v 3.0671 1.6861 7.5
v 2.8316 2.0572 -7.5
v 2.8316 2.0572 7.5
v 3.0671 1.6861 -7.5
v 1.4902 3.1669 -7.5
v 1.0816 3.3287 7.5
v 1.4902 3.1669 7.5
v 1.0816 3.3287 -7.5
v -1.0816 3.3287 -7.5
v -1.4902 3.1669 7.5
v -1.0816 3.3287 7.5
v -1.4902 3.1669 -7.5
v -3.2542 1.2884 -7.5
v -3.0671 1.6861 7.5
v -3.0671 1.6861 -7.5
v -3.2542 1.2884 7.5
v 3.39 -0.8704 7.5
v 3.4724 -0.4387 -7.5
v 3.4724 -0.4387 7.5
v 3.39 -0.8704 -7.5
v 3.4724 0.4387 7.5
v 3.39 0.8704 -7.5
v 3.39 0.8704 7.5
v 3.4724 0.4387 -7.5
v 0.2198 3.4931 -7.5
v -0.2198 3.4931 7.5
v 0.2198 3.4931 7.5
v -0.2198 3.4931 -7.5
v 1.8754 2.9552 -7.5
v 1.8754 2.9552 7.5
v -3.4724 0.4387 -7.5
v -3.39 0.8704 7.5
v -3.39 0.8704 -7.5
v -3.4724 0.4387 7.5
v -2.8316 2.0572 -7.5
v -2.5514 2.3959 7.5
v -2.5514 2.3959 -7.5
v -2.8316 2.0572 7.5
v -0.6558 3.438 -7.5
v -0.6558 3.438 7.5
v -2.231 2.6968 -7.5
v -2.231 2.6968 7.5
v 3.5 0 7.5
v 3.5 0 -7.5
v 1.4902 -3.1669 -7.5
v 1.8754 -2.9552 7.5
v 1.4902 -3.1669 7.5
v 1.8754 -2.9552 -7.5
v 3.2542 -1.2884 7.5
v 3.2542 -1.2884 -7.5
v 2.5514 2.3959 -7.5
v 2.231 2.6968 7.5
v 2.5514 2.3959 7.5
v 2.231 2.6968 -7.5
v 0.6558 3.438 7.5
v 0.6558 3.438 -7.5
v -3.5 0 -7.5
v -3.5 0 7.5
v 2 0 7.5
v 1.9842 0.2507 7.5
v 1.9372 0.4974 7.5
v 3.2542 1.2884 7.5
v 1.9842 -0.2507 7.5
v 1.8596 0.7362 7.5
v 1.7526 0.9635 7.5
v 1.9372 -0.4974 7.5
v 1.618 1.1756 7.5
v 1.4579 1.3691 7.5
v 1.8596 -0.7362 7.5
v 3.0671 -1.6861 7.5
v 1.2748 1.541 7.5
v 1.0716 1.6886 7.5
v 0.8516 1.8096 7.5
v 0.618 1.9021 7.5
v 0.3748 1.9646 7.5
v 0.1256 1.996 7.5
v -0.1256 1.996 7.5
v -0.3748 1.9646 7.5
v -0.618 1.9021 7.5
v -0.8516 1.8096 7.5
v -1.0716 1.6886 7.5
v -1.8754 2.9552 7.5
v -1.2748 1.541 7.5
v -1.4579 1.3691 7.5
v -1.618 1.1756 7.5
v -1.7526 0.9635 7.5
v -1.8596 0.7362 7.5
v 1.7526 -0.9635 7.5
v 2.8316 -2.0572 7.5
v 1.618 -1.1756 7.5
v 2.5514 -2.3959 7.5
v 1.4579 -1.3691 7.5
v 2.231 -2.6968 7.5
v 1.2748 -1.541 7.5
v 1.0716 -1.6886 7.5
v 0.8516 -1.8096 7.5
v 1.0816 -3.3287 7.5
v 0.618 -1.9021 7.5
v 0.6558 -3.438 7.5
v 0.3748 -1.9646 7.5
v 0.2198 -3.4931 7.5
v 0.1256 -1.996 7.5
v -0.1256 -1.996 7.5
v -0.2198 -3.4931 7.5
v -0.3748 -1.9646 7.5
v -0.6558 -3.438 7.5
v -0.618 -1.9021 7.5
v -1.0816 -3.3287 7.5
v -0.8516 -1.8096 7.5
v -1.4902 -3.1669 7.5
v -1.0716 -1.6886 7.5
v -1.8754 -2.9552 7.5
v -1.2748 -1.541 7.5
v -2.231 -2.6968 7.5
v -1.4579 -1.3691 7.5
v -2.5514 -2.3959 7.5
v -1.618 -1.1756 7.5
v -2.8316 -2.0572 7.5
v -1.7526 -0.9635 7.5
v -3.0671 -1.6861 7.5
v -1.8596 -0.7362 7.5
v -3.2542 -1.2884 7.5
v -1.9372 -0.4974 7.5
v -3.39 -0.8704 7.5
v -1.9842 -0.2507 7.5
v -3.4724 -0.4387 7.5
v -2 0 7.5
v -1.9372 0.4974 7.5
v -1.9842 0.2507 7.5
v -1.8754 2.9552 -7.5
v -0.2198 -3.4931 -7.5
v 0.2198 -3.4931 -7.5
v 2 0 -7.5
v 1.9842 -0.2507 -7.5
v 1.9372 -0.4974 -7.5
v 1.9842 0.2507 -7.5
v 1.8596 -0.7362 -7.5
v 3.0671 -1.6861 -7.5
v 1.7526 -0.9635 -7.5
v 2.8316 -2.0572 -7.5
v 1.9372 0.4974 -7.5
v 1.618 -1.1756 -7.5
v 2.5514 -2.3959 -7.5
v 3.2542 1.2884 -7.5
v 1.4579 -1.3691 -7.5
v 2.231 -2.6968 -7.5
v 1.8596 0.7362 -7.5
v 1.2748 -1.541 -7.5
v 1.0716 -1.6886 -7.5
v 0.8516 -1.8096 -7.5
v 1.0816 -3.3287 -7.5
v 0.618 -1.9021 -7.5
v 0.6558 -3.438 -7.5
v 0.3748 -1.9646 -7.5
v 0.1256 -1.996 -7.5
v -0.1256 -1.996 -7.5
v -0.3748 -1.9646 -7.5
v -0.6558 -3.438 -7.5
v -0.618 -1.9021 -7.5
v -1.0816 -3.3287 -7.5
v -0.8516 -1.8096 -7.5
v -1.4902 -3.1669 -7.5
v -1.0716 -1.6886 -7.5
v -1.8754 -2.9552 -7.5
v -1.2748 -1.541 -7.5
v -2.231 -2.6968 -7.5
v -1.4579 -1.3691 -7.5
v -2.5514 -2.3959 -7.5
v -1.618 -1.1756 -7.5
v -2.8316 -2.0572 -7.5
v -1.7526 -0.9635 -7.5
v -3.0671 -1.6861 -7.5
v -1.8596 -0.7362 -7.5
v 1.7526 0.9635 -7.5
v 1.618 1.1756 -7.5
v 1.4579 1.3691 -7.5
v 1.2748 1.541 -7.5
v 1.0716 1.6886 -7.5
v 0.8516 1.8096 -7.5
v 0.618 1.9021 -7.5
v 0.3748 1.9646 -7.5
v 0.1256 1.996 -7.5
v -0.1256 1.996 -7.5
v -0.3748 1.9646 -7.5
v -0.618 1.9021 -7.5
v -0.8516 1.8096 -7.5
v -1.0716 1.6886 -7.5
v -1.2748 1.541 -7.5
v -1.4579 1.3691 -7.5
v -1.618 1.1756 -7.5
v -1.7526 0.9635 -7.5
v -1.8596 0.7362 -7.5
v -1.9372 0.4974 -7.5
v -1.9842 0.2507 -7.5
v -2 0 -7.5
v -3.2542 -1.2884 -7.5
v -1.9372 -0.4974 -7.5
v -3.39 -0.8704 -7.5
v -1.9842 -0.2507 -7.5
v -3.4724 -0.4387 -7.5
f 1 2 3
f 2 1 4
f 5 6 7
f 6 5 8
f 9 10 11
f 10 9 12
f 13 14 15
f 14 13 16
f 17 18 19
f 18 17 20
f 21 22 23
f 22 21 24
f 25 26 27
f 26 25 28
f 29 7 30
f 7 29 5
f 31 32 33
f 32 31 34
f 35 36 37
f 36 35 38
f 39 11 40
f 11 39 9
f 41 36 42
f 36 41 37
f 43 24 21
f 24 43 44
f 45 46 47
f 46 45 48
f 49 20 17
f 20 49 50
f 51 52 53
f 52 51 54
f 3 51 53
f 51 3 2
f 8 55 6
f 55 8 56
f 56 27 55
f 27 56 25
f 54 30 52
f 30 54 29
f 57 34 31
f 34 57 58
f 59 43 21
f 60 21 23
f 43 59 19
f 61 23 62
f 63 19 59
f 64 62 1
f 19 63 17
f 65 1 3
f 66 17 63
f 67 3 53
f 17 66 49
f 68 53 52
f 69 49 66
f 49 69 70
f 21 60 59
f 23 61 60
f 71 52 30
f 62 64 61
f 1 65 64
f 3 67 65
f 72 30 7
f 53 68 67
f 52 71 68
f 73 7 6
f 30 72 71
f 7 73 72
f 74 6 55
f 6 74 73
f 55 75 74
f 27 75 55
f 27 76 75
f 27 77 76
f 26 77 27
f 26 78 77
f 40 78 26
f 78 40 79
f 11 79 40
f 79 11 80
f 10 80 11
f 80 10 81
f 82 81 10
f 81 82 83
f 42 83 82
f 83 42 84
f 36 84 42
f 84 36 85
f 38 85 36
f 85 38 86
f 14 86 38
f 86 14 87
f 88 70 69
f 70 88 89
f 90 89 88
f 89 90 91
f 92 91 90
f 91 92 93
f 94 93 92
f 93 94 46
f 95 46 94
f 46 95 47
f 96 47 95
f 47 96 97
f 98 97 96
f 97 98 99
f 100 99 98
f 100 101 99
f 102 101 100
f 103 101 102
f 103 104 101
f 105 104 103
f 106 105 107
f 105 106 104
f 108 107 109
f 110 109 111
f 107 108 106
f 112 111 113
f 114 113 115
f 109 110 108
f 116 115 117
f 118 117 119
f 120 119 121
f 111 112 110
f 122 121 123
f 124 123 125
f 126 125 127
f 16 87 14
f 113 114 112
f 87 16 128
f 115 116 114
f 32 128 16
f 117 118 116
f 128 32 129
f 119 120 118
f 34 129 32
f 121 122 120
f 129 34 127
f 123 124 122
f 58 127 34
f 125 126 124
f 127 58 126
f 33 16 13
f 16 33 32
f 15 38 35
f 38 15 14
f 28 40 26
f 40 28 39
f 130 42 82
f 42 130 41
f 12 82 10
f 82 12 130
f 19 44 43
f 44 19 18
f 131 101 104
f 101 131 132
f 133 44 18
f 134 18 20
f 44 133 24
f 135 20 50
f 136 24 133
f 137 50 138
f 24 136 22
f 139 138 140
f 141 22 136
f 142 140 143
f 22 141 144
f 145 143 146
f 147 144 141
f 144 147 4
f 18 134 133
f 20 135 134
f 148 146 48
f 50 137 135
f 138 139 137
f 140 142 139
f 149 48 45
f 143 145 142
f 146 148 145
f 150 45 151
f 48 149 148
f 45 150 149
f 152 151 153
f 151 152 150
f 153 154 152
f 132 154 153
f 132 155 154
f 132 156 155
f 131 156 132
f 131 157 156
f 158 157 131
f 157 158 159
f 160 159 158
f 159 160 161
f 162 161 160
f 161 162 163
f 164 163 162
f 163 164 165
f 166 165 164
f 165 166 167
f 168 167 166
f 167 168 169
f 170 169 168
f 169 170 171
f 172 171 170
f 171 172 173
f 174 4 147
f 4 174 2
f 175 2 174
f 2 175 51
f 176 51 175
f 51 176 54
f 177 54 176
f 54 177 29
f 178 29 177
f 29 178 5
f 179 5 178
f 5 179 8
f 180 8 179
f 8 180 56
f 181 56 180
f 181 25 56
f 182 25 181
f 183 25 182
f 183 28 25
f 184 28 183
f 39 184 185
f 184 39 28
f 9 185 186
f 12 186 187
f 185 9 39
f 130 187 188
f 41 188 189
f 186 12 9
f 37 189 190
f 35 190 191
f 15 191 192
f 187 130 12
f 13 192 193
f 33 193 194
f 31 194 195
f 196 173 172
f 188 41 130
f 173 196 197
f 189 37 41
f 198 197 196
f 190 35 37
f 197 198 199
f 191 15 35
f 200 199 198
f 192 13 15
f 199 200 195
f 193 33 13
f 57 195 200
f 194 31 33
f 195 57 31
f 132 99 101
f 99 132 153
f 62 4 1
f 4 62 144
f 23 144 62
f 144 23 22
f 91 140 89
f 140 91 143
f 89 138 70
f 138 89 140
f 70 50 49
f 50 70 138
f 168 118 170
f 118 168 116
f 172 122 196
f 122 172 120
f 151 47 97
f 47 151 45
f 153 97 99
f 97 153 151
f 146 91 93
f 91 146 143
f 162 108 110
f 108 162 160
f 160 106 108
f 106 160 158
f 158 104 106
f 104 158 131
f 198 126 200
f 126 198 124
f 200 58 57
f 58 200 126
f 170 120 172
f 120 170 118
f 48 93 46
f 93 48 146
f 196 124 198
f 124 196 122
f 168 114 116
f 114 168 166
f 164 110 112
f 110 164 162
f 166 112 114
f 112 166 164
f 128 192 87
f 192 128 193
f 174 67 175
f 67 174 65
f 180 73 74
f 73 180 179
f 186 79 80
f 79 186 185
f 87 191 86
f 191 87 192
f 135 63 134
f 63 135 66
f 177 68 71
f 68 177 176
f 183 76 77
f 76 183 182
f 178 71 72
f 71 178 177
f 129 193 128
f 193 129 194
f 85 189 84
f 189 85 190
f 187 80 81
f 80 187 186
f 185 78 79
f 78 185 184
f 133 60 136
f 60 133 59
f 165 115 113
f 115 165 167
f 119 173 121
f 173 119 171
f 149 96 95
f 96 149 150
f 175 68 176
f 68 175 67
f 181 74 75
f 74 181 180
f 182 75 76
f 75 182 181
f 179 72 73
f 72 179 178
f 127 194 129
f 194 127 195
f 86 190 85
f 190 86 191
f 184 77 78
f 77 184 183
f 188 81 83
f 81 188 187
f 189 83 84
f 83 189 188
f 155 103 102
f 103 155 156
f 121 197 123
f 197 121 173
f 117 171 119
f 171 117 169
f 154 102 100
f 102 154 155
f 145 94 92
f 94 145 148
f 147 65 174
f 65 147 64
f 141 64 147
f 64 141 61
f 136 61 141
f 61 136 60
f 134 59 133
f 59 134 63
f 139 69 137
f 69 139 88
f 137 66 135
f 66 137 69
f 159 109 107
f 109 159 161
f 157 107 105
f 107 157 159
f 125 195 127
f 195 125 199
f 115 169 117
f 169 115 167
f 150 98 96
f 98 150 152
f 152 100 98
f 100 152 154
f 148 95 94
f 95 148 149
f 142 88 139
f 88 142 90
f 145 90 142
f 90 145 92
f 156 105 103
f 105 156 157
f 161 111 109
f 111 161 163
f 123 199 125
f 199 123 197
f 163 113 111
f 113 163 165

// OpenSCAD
$fn = 50;


difference() {
	union() {
		translate(v = [0, 0, -7.5000000000]) {
			cylinder(h = 15, r = 3.5000000000);
		}
	}
	union() {
		translate(v = [0, 0, -100.0000000000]) {
			cylinder(h = 200, r = 2);
		}
	}
}
